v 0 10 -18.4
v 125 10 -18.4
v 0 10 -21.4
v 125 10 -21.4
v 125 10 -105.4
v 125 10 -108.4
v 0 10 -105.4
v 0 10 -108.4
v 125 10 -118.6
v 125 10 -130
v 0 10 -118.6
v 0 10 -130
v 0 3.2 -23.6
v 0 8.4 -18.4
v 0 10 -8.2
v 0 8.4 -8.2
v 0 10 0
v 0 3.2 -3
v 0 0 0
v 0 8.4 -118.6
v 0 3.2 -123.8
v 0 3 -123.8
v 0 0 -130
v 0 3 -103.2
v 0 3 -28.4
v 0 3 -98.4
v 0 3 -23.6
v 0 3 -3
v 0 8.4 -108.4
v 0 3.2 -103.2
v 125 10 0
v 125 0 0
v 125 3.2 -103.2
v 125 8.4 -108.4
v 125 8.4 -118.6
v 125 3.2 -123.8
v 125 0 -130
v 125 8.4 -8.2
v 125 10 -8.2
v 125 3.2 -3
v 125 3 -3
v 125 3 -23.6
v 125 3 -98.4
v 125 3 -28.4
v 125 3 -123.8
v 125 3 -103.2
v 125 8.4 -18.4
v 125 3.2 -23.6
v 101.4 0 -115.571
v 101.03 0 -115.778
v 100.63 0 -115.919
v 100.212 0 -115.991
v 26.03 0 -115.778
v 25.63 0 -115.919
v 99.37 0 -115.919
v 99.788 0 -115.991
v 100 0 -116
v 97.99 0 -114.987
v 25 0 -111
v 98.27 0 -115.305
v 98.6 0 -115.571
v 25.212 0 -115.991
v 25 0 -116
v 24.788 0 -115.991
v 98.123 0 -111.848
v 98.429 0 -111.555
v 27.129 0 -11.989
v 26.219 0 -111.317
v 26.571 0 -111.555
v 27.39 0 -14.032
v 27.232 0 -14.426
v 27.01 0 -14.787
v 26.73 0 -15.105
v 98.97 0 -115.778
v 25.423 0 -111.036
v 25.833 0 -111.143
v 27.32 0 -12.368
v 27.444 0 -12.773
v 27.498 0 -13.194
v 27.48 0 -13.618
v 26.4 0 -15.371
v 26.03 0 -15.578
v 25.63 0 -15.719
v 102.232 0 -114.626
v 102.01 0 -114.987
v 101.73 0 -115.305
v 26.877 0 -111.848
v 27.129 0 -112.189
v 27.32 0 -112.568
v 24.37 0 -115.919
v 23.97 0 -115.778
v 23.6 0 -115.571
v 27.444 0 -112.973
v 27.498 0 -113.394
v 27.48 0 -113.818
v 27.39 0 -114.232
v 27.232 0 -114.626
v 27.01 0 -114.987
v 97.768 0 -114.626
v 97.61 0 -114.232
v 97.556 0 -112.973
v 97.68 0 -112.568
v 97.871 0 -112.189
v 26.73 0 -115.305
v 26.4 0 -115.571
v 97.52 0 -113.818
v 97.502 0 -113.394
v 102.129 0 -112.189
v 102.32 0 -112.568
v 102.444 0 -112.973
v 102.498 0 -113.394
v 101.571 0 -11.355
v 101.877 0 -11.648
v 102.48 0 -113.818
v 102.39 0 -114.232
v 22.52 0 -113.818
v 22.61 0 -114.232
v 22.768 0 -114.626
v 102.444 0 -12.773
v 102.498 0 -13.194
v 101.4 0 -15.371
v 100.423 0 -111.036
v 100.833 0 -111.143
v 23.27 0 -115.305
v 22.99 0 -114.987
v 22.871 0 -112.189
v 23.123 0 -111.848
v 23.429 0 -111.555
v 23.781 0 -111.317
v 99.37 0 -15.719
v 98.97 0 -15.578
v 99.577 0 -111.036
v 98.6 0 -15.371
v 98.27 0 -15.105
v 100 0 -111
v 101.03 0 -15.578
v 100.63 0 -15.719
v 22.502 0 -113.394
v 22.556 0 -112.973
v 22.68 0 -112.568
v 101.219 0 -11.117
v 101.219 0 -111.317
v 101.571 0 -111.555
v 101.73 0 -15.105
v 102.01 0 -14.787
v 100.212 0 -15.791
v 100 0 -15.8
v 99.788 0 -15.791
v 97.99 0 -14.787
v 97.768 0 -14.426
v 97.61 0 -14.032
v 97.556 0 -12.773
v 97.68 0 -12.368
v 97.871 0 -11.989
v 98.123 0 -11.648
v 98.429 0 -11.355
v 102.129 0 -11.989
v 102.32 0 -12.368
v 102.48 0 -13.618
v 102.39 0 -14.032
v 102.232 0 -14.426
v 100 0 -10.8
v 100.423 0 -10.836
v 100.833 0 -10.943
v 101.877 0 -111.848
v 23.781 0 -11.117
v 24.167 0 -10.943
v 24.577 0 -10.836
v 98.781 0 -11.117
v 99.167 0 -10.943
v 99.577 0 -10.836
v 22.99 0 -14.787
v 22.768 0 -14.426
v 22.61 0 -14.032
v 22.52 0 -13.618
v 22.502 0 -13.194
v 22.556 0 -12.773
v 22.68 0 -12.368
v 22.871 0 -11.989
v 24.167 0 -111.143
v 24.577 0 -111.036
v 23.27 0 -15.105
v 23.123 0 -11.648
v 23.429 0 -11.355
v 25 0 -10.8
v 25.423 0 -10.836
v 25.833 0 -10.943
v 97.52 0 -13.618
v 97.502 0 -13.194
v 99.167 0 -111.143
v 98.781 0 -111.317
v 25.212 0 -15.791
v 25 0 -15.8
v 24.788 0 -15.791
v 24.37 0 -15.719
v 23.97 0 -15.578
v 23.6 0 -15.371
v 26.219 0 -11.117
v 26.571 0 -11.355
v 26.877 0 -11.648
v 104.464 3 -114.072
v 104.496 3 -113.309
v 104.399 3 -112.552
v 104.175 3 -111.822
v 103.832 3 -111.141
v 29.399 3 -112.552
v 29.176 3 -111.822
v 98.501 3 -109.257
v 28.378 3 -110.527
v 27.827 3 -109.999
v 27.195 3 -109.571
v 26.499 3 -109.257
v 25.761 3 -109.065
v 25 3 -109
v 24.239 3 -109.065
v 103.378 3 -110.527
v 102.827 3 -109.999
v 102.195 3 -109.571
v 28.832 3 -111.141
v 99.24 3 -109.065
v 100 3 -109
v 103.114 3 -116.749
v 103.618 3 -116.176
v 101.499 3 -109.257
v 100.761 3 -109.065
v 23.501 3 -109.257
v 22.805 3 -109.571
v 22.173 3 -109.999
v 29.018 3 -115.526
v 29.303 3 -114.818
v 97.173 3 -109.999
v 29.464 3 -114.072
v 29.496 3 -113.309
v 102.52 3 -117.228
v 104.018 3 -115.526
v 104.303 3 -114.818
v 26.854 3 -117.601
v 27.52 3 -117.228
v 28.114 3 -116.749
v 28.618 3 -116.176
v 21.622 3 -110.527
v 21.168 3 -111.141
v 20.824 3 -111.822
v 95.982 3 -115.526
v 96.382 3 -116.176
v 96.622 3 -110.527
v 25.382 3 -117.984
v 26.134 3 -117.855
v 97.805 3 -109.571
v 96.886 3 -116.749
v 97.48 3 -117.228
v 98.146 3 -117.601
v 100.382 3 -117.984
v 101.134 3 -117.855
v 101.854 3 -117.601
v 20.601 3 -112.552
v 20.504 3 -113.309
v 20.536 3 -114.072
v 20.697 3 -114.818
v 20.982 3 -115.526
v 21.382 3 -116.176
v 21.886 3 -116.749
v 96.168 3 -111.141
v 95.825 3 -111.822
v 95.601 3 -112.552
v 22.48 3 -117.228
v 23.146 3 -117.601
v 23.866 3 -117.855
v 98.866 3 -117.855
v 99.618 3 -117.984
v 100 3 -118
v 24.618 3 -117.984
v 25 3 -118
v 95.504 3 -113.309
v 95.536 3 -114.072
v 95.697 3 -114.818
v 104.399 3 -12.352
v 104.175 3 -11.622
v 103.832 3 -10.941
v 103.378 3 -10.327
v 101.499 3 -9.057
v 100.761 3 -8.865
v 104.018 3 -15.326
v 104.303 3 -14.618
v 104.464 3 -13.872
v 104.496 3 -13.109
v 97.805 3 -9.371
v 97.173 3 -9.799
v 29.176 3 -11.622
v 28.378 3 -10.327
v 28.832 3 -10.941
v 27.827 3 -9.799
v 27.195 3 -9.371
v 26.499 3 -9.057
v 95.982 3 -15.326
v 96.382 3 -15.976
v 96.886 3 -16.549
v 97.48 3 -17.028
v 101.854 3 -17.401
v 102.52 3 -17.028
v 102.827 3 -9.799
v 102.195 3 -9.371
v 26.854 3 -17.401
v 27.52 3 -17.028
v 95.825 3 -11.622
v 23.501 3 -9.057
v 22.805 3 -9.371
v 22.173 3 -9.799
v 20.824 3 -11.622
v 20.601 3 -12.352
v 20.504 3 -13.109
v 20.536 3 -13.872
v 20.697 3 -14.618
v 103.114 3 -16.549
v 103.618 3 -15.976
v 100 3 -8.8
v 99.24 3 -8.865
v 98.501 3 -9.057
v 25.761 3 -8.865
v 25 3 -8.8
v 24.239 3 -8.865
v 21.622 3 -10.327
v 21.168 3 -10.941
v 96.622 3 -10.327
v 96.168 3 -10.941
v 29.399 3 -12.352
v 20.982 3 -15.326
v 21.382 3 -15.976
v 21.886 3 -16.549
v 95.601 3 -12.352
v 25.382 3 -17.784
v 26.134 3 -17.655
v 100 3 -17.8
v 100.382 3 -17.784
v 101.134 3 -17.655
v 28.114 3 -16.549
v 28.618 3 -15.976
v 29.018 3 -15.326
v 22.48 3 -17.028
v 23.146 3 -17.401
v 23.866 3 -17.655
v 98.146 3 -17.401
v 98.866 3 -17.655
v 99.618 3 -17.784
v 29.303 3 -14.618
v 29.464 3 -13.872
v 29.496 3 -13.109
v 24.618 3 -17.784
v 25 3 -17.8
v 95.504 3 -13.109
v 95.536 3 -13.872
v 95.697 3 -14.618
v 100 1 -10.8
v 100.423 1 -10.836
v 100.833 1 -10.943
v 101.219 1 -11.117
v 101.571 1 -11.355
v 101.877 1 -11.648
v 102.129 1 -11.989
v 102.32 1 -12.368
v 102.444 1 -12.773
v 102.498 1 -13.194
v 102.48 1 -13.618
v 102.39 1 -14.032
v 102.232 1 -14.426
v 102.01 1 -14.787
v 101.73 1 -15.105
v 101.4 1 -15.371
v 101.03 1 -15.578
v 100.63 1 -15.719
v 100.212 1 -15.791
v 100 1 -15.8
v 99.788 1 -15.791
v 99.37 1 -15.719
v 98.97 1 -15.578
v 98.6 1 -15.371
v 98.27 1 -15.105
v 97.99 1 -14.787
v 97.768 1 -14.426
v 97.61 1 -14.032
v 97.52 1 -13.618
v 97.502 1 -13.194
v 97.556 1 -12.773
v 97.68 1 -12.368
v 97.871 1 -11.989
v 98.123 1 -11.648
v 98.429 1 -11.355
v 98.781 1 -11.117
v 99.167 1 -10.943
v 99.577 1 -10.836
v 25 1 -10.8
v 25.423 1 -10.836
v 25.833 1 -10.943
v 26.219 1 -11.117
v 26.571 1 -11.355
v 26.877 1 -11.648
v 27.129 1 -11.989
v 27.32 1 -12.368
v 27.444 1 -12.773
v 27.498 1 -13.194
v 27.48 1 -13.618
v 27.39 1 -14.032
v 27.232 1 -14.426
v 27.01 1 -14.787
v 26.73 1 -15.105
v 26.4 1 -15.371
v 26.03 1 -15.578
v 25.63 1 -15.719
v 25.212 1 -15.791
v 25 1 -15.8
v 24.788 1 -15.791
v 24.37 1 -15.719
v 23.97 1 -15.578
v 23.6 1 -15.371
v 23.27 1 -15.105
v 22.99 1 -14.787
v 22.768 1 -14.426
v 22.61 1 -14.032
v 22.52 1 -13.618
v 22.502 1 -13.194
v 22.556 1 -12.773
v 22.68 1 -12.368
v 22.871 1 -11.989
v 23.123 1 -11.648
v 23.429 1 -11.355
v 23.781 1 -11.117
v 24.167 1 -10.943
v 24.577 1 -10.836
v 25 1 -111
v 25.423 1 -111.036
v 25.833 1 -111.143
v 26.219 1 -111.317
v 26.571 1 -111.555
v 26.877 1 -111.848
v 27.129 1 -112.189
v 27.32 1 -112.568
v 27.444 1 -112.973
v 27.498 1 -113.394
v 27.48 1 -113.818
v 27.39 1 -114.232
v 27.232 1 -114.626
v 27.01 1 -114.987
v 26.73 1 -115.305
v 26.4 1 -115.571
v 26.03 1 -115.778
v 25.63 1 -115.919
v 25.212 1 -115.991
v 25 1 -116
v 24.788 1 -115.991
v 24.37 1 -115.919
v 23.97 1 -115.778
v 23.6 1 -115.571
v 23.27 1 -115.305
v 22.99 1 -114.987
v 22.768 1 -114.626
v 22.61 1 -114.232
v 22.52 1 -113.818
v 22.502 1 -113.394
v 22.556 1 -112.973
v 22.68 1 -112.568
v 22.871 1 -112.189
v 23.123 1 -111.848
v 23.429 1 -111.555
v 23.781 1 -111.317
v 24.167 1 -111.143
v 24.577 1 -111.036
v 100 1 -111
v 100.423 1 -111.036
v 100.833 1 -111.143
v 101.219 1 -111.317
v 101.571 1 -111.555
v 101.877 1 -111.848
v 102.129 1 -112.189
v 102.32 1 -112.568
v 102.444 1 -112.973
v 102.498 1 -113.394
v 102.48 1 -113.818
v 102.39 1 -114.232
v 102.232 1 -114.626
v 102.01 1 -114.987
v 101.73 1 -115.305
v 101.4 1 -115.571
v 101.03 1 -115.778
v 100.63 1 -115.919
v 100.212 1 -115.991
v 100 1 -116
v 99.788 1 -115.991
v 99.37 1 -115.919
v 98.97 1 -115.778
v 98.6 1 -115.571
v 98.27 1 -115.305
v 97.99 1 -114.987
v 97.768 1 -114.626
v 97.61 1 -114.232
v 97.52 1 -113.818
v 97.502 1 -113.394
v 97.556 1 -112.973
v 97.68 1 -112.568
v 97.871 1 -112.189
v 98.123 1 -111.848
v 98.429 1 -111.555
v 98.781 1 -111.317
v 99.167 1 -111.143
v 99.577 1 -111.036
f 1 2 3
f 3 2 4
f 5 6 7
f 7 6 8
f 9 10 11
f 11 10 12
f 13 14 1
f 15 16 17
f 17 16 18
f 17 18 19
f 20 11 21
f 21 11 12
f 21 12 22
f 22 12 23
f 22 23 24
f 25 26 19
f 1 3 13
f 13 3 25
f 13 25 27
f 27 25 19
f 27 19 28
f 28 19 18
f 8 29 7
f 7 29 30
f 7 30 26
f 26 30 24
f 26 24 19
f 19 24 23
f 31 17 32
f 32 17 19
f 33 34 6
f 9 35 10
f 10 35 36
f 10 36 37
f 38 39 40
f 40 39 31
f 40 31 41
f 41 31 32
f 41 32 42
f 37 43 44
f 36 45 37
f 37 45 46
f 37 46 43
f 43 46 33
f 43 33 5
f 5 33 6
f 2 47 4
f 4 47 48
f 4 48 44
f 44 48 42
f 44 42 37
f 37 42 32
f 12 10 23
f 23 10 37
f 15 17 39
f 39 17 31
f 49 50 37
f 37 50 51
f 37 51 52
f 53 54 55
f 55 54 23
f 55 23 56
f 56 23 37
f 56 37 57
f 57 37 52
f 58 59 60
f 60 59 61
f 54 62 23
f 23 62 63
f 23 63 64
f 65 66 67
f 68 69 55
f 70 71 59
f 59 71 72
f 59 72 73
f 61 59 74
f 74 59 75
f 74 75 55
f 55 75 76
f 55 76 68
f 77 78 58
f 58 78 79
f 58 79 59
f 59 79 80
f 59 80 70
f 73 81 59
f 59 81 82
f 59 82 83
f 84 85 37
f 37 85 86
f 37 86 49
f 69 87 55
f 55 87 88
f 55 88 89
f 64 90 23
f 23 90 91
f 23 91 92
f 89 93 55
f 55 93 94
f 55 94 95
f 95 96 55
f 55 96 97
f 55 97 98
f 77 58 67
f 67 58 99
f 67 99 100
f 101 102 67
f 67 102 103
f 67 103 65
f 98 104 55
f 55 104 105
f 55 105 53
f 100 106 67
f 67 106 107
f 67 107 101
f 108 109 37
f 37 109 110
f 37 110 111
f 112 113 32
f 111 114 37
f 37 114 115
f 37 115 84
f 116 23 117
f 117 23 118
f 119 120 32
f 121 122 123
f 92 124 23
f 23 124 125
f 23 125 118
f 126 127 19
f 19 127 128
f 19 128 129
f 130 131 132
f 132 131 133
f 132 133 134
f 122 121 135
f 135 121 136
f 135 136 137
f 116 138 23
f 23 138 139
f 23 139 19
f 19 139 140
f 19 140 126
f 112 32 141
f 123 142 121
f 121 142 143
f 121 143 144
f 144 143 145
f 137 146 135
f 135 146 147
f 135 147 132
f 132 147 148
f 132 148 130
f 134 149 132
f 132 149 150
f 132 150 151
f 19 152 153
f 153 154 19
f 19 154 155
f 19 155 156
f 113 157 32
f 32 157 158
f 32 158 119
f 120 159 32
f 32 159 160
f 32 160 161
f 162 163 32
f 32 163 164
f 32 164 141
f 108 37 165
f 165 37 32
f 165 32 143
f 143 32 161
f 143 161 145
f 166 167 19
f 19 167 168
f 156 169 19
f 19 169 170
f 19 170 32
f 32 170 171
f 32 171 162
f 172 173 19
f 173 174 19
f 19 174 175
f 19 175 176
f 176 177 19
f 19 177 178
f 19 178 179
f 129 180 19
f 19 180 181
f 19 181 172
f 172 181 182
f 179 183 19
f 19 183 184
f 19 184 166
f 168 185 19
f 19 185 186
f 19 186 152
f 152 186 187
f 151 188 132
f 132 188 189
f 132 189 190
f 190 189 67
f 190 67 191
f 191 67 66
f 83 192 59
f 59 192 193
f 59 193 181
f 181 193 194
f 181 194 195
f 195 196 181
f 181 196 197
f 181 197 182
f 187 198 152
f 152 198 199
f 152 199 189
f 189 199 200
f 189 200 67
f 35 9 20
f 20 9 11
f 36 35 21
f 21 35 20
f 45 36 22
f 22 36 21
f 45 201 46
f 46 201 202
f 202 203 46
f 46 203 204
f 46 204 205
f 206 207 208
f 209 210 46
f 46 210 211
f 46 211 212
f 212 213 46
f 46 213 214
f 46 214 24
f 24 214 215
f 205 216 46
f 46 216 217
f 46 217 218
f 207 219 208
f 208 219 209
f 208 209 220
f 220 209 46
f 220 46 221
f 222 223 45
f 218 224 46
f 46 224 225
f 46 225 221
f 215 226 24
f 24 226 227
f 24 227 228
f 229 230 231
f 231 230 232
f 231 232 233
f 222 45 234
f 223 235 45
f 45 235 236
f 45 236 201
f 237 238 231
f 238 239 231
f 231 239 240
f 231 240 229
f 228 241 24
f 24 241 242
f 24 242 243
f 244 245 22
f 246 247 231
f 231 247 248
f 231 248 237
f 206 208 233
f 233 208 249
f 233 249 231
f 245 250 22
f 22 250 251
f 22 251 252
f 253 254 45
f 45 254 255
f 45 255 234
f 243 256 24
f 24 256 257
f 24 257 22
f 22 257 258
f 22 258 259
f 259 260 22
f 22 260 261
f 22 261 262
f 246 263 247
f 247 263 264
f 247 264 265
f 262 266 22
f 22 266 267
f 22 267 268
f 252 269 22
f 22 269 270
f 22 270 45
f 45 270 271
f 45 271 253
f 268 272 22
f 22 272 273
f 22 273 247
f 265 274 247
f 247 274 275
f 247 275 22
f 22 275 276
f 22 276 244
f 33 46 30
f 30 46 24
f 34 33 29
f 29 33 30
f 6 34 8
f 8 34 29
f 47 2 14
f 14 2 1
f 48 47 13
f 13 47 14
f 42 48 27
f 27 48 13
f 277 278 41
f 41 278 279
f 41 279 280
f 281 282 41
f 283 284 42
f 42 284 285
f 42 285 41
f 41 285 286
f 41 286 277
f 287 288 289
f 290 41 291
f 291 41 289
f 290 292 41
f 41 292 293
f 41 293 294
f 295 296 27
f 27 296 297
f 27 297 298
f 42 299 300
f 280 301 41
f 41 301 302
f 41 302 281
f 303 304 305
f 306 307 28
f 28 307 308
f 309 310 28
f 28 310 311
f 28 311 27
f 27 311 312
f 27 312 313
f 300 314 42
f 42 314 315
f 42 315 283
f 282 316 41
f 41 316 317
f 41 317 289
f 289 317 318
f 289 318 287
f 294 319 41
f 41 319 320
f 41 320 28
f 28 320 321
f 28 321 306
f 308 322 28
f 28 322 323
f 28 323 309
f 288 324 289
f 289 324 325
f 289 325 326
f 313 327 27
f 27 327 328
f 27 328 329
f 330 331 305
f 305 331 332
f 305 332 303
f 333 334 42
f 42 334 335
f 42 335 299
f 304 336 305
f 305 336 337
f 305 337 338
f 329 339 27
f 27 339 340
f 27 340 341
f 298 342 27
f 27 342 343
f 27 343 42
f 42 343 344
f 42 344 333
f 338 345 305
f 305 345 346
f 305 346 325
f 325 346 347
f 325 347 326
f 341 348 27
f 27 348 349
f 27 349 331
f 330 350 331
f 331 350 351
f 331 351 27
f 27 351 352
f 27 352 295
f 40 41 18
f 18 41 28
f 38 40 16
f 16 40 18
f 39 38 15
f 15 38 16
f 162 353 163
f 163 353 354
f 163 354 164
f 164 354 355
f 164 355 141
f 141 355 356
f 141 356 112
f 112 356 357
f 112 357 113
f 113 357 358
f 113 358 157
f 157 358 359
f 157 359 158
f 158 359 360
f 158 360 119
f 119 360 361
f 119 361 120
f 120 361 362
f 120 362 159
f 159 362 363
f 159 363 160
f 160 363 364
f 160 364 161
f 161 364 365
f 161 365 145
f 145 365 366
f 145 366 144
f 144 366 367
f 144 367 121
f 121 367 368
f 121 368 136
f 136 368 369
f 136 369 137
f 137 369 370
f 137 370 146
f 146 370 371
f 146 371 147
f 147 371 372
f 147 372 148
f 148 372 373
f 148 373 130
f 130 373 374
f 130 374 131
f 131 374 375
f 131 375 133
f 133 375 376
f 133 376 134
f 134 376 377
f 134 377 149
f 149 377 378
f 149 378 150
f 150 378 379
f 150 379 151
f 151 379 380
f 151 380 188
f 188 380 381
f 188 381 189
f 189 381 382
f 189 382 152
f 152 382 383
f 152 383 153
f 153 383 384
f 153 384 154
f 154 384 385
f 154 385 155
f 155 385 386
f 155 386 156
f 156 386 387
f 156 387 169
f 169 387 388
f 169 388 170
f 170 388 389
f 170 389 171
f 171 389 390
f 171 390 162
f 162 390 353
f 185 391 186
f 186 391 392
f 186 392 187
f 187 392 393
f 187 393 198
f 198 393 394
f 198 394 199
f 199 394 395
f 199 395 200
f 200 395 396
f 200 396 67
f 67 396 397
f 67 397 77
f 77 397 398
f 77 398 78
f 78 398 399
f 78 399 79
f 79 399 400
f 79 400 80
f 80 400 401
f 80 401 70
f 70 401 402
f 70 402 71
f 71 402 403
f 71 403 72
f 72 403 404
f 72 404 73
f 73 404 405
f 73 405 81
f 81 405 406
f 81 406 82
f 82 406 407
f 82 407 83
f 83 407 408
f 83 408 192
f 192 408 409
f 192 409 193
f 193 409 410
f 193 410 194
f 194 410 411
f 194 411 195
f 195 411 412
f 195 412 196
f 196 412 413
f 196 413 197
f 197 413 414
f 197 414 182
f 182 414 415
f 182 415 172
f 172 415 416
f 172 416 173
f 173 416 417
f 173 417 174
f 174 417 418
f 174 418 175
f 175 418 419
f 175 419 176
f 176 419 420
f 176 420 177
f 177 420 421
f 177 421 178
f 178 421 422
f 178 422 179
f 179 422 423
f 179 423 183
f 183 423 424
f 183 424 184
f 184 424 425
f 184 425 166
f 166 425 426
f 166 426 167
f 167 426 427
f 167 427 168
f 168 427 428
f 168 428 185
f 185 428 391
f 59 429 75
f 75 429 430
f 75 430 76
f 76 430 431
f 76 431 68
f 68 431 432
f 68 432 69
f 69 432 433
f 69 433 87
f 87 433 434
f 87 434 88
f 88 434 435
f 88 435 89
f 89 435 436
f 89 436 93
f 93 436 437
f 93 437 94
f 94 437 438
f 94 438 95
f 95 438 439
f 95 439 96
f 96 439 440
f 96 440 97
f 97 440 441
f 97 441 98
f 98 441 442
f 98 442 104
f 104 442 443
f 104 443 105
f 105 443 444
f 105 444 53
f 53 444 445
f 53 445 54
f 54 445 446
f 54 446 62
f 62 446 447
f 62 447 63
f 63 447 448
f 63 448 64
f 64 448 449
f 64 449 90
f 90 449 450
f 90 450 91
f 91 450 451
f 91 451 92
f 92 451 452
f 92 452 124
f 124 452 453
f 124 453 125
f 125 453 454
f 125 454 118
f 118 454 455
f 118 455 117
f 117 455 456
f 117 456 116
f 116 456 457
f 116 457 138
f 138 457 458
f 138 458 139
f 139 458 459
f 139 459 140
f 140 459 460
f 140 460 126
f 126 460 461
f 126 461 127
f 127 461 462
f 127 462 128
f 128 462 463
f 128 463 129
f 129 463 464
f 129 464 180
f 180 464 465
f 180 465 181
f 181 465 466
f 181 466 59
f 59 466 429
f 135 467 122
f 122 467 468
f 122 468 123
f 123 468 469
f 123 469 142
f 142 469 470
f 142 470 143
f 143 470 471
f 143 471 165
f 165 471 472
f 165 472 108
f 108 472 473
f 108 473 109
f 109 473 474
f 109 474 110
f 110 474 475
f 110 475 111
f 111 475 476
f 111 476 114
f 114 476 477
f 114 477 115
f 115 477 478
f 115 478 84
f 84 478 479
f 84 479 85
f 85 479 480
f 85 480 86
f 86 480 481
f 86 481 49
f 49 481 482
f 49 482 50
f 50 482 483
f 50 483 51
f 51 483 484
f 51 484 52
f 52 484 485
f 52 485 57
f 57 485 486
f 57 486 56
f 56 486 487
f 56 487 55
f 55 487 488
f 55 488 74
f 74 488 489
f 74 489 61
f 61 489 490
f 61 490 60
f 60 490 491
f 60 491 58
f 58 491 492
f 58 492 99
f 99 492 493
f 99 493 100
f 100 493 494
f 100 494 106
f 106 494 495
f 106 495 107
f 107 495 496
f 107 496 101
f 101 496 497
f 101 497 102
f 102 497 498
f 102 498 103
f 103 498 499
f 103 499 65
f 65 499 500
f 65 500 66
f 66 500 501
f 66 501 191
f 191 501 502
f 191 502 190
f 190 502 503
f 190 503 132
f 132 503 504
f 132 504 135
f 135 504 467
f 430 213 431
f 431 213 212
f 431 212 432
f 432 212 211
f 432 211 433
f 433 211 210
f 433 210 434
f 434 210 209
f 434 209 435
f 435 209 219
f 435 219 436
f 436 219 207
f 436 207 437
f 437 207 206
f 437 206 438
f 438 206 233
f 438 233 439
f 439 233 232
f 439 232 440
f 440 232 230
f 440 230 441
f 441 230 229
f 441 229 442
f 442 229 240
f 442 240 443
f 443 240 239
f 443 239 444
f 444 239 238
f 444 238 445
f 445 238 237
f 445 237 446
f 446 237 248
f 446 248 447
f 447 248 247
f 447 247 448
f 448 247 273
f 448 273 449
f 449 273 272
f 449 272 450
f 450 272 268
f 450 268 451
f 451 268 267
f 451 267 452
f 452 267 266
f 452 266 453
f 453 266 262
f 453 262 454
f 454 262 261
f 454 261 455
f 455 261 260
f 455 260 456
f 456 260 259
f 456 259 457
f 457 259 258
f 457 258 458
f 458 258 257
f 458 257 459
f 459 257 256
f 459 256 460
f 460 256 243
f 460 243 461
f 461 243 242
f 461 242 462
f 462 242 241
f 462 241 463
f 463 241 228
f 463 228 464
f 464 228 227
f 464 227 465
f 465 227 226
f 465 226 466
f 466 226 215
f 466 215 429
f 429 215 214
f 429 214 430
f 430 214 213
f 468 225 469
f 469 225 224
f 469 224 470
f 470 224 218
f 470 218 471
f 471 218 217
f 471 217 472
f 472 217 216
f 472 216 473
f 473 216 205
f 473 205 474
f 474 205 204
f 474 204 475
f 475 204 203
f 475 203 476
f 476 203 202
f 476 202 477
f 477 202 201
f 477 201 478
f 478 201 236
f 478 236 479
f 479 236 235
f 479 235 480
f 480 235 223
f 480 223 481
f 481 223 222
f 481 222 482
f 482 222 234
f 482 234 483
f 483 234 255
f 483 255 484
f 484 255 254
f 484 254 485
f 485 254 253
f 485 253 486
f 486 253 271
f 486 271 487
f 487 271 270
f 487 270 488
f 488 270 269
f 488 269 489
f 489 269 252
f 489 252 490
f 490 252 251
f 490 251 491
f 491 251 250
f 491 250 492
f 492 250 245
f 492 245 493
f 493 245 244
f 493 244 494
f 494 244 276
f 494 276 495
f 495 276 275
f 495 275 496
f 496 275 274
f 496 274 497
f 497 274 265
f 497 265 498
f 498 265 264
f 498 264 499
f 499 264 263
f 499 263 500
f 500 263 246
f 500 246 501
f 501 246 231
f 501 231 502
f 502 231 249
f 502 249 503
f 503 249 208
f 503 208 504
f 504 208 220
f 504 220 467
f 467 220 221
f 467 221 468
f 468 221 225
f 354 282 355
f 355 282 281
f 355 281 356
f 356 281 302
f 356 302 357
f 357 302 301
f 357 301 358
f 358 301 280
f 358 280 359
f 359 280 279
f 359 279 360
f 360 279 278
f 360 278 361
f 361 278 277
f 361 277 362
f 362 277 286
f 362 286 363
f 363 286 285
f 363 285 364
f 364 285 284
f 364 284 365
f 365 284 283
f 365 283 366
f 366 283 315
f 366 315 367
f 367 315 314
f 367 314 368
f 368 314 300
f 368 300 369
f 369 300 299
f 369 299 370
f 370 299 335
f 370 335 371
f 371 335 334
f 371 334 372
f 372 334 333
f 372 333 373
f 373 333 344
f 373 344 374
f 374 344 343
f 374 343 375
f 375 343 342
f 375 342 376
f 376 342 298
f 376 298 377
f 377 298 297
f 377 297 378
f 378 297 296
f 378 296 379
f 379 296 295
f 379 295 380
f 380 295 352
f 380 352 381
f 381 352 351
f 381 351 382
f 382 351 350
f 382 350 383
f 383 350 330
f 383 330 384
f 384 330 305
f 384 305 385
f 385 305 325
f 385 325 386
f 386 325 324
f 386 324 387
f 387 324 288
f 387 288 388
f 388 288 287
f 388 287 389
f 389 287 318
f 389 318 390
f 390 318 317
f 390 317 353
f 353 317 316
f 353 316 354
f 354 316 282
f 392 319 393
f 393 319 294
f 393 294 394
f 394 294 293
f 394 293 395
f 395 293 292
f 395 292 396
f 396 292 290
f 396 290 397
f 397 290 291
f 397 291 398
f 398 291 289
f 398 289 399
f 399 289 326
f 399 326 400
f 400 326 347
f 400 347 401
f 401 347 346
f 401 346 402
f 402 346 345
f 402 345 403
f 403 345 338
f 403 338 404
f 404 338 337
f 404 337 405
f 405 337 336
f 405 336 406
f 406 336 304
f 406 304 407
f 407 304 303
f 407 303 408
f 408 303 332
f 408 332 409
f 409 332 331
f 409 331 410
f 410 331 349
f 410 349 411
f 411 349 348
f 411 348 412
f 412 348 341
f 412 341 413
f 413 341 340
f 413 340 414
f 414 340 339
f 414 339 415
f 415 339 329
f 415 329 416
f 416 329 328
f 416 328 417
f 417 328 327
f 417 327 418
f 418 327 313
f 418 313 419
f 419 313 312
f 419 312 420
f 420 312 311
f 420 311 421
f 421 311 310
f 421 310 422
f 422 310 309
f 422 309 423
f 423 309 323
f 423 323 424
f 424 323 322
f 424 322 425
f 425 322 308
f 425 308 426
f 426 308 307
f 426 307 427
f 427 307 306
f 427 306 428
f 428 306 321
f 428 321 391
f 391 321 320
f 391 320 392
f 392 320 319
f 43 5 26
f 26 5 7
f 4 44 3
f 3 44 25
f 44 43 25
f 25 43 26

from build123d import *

# Parameters (mm, degrees)
ESQUISSE1_W             = 125
ESQUISSE1_H             = 130
BOSS_EXTRU_1_DEPTH      = 10
ENL_V_MAT_EXTRU_1_DEPTH = 125
ESQUISSE4_R             = 2.5
ENL_V_MAT_EXTRU_2_DEPTH = 3
CHANFREIN2_SIZE         = 2
ENL_V_MAT_EXTRU_6_DEPTH = 126


with BuildPart() as part:
    # Esquisse1 → Boss.-Extru.1 (new body)
    with BuildSketch(Plane(origin=(0, 0, 0), x_dir=(1, 0, 0), z_dir=(0, 1, 0))):
        with Locations((62.5, 65)):
            Rectangle(ESQUISSE1_W, ESQUISSE1_H)
    extrude(amount=BOSS_EXTRU_1_DEPTH)

    # Esquisse2 → Enlèv. mat.-Extru.1 (cut)
    with BuildSketch(Plane(origin=(125, 0, 0), x_dir=(0, 0, -1), z_dir=(1, 0, 0))):
        Polygon((8.2, 10), (8.2, 8.4), (3, 3.2), (3, 3), (23.6, 3), (23.6, 3.2), (18.4, 8.4), (18.4, 10), align=None)
        Polygon((118.6, 10), (118.6, 8.4), (123.8, 3.2), (123.8, 3), (103.2, 3), (103.2, 3.2), (108.4, 8.4), (108.4, 10), align=None)
    extrude(amount=-ENL_V_MAT_EXTRU_1_DEPTH, mode=Mode.SUBTRACT)

    # Esquisse4 → Enlèv. mat.-Extru.2 (cut)
    with BuildSketch(Plane(origin=(0, 3, 0), x_dir=(1, 0, 0), z_dir=(0, 1, 0))):
        with Locations((100, 13.3)):
            Circle(ESQUISSE4_R)
        with Locations((25, 13.3)):
            Circle(ESQUISSE4_R)
        with Locations((100, 113.5)):
            Circle(ESQUISSE4_R)
        with Locations((25, 113.5)):
            Circle(ESQUISSE4_R)
    extrude(amount=-ENL_V_MAT_EXTRU_2_DEPTH, mode=Mode.SUBTRACT)

    # Chanfrein2
    chanfrein2_edges = [part.edges().sort_by_distance(p)[0] for p in [
        (22.5, 3, -13.3),
        (97.5, 3, -113.5),
        (22.5, 3, -113.5),
        (97.5, 3, -13.3),
    ]]
    chamfer(chanfrein2_edges, length=CHANFREIN2_SIZE)

    # Esquisse8 → Enlèv. mat.-Extru.6 (cut, through all)
    with BuildSketch(Plane.ZY):
        Polygon((-105.4, 10), (-104.089482721, 8.689482721), (-98.479134235, 3.079134235), (-98.4, 3), (-28.4, 3), (-28.320865765, 3.079134235), (-22.710517279, 8.689482721), (-21.4, 10), align=None)
    extrude(amount=-ENL_V_MAT_EXTRU_6_DEPTH, mode=Mode.SUBTRACT)


solid = part.part
